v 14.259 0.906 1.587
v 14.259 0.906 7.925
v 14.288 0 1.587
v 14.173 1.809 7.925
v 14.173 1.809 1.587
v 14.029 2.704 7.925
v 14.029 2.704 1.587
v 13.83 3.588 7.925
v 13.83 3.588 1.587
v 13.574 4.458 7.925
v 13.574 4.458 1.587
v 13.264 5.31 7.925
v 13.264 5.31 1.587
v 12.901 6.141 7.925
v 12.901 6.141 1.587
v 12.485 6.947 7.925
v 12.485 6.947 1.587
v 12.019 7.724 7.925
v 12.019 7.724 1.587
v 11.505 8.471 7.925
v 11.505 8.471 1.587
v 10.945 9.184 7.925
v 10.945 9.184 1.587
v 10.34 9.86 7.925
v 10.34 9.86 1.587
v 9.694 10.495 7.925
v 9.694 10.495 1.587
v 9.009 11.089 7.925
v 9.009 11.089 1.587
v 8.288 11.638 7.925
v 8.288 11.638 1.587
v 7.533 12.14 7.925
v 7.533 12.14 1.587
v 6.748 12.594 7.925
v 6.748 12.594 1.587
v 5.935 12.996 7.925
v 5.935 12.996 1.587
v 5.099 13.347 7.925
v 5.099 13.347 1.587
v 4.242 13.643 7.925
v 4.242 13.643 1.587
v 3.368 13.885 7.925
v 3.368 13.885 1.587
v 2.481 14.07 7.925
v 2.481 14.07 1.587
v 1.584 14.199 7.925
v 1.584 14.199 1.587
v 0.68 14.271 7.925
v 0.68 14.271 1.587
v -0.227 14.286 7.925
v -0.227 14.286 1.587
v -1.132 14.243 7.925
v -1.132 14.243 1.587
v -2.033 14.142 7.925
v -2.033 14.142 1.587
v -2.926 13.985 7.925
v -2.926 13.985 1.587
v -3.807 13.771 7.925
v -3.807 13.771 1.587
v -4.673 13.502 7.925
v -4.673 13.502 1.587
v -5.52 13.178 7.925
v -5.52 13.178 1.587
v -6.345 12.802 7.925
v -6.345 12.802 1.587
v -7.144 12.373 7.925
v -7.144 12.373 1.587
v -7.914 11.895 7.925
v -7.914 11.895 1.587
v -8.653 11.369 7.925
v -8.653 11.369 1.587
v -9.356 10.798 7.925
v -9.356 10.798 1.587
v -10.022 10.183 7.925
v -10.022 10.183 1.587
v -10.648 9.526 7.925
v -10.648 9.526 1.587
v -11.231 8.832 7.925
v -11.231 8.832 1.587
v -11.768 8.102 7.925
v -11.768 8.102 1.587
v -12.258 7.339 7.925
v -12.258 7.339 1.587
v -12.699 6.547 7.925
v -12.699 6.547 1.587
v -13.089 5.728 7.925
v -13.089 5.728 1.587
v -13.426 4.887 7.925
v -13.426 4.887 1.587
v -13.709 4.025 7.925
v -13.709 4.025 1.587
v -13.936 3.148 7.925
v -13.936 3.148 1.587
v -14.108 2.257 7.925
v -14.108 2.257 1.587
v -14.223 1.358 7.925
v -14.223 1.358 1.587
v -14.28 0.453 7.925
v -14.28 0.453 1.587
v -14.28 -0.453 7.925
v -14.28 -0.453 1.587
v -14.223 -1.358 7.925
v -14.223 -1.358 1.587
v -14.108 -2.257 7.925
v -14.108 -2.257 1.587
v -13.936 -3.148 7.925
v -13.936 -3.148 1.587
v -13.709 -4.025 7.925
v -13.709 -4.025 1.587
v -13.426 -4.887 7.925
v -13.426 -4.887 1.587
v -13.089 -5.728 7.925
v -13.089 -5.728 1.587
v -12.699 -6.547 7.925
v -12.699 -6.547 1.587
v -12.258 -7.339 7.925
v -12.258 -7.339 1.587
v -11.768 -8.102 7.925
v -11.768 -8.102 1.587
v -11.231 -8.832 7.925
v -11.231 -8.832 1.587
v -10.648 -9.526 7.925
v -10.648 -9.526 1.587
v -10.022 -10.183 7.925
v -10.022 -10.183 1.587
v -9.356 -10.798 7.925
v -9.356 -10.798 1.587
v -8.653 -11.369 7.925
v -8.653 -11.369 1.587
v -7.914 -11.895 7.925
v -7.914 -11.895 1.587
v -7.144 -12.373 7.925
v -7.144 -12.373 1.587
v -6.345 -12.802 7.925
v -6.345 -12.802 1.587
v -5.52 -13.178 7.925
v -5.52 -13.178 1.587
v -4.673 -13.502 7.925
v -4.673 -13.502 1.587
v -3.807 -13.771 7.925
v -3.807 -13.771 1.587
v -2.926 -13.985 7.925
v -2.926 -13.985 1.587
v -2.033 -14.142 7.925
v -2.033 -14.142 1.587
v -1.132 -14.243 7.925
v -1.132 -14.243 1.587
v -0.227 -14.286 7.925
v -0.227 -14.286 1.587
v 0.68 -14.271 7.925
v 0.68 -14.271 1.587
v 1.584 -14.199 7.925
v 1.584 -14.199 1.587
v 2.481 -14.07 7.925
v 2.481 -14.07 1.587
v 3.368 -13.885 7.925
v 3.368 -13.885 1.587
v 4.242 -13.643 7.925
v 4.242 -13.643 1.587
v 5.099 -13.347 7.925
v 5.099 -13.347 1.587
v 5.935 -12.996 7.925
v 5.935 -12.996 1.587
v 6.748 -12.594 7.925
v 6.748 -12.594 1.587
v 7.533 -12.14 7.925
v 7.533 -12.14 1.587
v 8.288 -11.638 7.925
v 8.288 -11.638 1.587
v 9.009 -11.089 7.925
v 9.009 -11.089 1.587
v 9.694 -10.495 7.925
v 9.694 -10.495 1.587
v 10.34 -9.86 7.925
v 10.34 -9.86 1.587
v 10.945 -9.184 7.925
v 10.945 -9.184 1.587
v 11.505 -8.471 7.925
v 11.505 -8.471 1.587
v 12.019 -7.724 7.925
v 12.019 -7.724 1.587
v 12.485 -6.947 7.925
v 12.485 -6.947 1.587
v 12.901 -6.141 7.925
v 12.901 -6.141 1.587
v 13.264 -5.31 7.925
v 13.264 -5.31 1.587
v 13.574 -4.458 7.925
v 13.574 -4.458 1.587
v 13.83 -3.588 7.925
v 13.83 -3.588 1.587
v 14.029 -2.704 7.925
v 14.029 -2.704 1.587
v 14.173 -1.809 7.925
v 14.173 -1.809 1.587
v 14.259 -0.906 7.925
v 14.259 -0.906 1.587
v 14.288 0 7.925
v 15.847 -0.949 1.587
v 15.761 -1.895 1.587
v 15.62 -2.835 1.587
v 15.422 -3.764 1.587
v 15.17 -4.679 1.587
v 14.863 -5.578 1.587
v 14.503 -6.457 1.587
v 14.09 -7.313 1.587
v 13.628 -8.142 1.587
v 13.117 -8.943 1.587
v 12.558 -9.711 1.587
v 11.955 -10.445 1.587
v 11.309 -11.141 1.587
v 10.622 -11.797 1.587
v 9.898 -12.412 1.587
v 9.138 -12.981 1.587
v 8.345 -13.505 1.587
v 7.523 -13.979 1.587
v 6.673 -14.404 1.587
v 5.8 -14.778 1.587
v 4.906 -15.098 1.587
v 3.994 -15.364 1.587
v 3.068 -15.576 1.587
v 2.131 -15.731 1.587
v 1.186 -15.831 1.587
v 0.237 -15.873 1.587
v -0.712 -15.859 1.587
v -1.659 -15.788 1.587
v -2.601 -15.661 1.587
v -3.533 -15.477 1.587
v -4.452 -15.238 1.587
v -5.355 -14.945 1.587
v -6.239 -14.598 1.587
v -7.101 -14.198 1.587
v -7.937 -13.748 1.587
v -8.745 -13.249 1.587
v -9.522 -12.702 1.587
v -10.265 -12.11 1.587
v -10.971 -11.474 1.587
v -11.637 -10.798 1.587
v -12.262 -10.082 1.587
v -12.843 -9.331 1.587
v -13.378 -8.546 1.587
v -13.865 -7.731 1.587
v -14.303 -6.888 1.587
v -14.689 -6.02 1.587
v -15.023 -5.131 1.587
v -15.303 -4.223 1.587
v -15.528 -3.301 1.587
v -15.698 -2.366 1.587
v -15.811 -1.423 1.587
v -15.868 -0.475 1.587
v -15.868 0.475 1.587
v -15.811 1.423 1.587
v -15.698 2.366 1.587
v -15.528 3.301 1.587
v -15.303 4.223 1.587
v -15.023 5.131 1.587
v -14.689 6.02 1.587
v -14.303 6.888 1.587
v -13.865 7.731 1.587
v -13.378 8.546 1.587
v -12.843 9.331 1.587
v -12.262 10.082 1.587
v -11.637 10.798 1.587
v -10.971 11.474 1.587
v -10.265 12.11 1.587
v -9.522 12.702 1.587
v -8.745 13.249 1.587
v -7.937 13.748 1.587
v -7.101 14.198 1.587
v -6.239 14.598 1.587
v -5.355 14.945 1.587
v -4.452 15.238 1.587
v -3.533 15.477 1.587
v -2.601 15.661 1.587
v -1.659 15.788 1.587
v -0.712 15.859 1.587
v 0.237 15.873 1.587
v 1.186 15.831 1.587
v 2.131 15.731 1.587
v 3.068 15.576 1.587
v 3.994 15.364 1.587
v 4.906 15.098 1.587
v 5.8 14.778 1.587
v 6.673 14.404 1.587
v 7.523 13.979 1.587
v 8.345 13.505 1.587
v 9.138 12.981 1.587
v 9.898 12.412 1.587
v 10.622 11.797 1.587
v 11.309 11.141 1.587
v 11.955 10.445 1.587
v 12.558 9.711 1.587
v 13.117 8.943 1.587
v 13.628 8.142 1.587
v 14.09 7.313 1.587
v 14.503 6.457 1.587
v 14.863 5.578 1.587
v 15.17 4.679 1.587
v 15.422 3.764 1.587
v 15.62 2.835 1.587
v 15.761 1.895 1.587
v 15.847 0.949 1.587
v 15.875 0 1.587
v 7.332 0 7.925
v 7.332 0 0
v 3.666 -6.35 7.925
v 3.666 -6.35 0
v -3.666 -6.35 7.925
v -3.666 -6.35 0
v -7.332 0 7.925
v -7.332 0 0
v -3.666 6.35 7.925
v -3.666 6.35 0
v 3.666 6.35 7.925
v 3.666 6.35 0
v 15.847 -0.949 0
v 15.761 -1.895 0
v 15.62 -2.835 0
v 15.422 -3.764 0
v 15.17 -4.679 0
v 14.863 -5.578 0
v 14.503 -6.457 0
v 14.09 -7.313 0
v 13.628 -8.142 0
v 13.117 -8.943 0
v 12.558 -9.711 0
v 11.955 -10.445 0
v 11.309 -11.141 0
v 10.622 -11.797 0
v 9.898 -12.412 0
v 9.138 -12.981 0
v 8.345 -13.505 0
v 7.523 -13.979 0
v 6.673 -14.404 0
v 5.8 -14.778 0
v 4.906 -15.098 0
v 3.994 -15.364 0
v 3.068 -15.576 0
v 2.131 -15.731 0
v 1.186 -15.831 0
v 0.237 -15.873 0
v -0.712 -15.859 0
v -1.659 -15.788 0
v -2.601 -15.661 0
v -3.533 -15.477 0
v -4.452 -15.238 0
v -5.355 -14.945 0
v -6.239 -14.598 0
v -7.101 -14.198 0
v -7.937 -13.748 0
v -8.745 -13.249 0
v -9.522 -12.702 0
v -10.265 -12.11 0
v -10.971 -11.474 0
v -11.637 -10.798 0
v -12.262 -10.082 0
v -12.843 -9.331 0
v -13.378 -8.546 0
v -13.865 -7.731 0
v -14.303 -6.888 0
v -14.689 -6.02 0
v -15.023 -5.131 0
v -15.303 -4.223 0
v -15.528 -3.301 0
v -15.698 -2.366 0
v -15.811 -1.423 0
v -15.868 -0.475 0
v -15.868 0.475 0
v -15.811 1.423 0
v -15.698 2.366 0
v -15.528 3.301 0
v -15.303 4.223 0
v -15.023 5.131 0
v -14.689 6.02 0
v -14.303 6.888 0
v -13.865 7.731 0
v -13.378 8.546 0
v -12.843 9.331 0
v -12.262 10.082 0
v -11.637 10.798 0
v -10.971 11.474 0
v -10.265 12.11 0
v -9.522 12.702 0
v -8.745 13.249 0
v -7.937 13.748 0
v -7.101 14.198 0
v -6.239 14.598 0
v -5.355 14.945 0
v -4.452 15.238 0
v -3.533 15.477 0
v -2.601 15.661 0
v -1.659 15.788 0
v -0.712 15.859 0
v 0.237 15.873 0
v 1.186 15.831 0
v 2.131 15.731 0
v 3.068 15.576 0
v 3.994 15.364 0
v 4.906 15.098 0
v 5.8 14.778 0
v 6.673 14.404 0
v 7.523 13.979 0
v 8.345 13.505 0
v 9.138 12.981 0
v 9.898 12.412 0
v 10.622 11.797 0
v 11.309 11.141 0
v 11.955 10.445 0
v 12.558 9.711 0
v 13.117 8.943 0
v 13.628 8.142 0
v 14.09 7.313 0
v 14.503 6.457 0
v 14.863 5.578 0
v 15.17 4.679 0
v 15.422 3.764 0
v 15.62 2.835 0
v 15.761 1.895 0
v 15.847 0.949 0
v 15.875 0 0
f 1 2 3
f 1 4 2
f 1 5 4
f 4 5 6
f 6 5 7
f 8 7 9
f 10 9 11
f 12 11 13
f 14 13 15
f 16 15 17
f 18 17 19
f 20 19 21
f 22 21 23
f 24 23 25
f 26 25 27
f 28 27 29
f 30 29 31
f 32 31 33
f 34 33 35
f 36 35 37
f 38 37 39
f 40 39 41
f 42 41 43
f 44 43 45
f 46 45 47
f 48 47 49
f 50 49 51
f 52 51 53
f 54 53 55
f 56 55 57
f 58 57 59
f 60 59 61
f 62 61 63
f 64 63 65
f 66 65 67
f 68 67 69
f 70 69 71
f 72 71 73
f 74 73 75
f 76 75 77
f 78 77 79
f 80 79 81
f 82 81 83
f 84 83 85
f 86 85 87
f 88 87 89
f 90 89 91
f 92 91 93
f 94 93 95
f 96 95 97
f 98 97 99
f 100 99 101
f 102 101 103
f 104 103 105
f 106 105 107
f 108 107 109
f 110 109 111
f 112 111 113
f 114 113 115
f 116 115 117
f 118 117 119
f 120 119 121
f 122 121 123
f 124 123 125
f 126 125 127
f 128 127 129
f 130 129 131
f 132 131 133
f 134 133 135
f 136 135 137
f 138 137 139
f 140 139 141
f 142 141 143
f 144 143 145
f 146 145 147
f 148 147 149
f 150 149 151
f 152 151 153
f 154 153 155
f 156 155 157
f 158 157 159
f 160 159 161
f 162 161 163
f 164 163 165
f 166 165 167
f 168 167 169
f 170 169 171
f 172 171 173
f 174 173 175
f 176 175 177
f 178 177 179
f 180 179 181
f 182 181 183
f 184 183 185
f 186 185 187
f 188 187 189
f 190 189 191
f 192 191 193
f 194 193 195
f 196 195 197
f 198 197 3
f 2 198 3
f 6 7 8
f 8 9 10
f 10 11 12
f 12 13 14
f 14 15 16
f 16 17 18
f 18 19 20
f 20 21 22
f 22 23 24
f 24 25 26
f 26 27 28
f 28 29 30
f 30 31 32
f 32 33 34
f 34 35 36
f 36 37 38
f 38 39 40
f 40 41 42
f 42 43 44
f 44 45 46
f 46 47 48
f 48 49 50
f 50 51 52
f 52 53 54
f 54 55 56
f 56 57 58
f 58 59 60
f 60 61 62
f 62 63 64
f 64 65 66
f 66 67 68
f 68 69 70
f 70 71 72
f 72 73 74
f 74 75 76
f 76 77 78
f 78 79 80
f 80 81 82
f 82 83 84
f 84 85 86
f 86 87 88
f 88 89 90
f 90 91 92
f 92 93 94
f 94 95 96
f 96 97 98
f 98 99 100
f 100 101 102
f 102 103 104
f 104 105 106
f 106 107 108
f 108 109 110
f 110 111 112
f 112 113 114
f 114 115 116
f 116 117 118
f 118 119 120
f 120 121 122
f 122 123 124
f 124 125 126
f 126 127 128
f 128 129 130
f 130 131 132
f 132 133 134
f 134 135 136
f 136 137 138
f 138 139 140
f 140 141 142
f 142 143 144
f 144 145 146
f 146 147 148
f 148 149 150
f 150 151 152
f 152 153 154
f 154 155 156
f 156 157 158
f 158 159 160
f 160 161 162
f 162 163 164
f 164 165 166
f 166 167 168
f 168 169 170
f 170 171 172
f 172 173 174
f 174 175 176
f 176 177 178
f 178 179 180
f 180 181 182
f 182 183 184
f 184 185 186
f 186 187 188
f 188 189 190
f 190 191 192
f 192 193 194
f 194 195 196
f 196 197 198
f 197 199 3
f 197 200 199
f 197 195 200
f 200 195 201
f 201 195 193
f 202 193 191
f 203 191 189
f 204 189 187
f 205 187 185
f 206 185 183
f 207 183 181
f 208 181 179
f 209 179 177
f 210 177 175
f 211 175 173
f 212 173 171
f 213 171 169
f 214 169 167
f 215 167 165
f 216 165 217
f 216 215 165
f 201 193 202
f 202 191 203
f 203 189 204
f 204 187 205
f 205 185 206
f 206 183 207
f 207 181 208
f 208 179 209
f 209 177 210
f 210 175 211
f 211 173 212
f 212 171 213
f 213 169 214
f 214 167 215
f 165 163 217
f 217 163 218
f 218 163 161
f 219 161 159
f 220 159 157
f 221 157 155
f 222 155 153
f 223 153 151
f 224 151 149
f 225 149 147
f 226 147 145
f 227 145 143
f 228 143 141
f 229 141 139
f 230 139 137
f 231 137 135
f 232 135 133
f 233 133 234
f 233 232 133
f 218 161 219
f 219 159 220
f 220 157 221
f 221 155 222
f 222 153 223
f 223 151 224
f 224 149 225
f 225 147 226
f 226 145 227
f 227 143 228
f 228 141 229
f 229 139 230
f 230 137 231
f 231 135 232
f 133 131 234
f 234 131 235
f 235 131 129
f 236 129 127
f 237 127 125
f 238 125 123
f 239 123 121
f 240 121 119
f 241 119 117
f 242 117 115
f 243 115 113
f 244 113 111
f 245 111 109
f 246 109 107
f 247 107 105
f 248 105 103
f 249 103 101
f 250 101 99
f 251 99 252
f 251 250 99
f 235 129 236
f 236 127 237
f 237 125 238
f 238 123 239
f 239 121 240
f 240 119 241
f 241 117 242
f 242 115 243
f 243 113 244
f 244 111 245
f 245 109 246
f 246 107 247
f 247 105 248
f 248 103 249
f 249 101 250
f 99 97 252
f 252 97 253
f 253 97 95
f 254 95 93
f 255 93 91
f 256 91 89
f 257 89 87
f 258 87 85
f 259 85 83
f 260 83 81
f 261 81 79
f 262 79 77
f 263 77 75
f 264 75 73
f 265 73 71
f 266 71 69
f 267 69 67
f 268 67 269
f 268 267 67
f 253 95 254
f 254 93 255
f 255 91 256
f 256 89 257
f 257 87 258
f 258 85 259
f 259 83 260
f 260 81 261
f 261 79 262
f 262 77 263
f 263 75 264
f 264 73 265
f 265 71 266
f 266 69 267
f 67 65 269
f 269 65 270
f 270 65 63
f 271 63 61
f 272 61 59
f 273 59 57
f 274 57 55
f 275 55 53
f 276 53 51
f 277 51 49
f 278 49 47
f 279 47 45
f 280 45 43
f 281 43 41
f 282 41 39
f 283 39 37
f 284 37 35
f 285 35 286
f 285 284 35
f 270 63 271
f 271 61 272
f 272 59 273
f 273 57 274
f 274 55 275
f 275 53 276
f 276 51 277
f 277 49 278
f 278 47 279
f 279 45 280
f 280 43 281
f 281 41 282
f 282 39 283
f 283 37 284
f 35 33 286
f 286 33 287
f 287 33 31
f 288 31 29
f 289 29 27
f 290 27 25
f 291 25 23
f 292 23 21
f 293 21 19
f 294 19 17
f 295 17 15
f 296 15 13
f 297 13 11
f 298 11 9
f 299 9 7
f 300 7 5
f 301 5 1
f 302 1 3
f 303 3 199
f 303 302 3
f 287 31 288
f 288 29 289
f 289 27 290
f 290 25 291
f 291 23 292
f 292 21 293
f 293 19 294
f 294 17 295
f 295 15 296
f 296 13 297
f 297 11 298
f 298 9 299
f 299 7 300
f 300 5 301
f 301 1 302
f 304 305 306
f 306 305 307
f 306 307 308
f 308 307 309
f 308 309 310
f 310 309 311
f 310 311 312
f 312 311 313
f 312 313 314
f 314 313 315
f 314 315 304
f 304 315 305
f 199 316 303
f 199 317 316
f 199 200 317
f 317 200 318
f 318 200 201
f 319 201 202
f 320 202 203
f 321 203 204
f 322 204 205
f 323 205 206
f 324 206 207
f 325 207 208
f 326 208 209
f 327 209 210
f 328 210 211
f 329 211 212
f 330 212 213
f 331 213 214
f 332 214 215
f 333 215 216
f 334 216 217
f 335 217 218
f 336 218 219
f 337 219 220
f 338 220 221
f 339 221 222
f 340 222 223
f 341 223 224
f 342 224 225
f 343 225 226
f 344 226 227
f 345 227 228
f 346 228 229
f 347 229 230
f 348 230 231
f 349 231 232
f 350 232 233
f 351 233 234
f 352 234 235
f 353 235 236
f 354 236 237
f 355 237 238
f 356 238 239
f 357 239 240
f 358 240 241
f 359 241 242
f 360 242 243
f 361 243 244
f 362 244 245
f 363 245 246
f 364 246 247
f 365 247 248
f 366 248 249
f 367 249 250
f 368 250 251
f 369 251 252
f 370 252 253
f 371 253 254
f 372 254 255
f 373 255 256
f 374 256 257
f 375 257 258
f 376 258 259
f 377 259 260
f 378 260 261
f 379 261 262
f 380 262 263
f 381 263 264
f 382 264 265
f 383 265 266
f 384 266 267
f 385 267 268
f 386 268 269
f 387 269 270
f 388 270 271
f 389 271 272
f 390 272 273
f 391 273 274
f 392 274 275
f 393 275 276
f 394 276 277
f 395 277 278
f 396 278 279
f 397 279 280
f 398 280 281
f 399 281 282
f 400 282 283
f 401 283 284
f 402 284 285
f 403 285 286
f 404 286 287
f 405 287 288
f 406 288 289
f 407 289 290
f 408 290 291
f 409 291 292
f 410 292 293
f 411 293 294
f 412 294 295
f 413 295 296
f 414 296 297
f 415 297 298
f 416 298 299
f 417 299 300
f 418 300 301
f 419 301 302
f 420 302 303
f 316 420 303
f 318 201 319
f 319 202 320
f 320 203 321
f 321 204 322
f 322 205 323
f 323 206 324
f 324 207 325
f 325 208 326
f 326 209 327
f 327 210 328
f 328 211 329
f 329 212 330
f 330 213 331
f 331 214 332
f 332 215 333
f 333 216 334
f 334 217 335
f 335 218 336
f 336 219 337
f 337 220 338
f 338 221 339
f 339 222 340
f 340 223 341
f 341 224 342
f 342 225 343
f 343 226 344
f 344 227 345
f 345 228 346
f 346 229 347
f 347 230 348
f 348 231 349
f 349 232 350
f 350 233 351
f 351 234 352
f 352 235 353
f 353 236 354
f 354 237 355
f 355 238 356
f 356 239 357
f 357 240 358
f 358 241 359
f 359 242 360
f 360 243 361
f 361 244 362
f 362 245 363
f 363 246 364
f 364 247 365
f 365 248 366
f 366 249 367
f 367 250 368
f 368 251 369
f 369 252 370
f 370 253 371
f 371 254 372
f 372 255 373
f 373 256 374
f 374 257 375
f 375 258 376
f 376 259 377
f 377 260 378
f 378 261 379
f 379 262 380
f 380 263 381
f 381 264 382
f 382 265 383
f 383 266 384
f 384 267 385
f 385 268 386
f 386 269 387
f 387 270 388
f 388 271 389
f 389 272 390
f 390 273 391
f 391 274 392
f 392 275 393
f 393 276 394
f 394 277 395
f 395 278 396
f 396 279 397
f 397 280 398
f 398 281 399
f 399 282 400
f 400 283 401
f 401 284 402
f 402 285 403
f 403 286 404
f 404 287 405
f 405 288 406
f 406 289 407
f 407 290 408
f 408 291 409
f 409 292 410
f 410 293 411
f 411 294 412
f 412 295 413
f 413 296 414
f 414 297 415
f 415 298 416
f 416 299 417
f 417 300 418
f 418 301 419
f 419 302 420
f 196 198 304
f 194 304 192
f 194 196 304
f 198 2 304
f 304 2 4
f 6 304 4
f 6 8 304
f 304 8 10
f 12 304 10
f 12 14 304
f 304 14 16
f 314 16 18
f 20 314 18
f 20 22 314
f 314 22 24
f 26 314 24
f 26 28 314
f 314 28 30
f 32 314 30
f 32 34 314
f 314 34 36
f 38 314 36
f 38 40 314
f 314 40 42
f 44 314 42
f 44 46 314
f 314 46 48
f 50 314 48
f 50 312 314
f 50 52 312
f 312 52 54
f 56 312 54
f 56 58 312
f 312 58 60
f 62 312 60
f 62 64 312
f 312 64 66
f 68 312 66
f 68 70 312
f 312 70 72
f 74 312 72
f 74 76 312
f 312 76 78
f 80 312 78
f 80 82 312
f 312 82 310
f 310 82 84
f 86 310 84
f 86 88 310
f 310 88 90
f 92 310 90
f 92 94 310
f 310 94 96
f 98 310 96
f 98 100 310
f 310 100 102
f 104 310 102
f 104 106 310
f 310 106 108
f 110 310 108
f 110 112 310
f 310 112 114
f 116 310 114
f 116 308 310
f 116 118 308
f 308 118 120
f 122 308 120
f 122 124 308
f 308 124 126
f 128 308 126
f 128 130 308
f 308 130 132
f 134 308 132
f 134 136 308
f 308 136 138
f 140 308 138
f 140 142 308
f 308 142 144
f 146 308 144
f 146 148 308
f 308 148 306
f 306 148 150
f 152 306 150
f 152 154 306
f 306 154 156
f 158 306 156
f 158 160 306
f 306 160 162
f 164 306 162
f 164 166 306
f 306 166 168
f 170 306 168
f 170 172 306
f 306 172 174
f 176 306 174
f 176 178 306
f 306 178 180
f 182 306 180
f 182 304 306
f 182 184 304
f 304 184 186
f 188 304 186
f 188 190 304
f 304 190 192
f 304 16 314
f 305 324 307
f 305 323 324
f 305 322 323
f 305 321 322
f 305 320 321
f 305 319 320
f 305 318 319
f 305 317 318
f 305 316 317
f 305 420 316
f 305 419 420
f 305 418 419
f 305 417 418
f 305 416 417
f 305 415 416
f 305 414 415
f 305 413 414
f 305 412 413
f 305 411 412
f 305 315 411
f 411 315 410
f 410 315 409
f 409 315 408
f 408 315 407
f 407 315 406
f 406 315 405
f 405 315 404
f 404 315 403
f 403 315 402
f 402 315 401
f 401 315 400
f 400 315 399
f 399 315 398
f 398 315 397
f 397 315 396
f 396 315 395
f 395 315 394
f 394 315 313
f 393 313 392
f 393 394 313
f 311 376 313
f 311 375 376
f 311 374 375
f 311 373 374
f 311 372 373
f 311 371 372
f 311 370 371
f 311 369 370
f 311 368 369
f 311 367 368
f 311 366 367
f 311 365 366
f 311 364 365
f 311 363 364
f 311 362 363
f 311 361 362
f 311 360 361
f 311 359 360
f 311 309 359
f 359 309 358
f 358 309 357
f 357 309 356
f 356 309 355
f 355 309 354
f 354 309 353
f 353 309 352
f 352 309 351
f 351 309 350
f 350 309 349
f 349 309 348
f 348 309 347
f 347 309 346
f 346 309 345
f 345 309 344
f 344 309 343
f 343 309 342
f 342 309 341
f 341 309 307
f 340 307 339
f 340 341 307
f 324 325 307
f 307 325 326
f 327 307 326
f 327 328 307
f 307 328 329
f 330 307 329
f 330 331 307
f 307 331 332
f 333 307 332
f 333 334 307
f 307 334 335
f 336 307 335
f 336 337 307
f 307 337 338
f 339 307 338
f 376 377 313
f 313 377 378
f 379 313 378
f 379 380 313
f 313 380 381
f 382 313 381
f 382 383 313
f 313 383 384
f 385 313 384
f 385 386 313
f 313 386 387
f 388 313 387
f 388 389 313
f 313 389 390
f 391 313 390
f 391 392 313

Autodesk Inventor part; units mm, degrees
ref_plane "YZ Plane" through (0, 0, 0) normal (1, 0, 0) x (0, 1, 0)
ref_plane "XZ Plane" through (0, 0, 0) normal (0, 1, 0) x (-1, 0, 0)
ref_plane "XY Plane" through (0, 0, 0) normal (0, 0, 1) x (1, 0, 0)
sketch "Sketch1" plane through (0, 0, 0) normal (0, 0, 1) x (1, 0, 0)
  circle A0 centre (0, 0) radius 15.875
  line L0 (3.6662, 6.35) -> (7.3323, 0)
  line L1 (7.3323, 0) -> (3.6662, -6.35)
  line L2 (3.6662, -6.35) -> (-3.6662, -6.35)
  line L3 (-3.6662, -6.35) -> (-7.3323, 0)
  line L4 (-7.3323, 0) -> (-3.6662, 6.35)
  line L5 (-3.6662, 6.35) -> (3.6662, 6.35)
  dimension "d0" = 31.75
  dimension "d1" = 12.7
extrude "Extrusion1" add sketch "Sketch1" along normal blind 7.9248
sketch "Sketch2" plane through (0, 0, 7.9248) normal (0, 0, 1) x (1, 0, 0)
  circle A0 centre (0, 0) radius 15.875 projected
  circle A1 centre (0, 0) radius 15.875
  circle A2 centre (0, 0) radius 14.2875
  dimension "d4" = 1.5875
extrude "Extrusion2" cut sketch "Sketch2" against normal blind 6.3373
properties part number "500id_1.125od_hex_flange_bearing" material "Stainless Steel, 440C"
